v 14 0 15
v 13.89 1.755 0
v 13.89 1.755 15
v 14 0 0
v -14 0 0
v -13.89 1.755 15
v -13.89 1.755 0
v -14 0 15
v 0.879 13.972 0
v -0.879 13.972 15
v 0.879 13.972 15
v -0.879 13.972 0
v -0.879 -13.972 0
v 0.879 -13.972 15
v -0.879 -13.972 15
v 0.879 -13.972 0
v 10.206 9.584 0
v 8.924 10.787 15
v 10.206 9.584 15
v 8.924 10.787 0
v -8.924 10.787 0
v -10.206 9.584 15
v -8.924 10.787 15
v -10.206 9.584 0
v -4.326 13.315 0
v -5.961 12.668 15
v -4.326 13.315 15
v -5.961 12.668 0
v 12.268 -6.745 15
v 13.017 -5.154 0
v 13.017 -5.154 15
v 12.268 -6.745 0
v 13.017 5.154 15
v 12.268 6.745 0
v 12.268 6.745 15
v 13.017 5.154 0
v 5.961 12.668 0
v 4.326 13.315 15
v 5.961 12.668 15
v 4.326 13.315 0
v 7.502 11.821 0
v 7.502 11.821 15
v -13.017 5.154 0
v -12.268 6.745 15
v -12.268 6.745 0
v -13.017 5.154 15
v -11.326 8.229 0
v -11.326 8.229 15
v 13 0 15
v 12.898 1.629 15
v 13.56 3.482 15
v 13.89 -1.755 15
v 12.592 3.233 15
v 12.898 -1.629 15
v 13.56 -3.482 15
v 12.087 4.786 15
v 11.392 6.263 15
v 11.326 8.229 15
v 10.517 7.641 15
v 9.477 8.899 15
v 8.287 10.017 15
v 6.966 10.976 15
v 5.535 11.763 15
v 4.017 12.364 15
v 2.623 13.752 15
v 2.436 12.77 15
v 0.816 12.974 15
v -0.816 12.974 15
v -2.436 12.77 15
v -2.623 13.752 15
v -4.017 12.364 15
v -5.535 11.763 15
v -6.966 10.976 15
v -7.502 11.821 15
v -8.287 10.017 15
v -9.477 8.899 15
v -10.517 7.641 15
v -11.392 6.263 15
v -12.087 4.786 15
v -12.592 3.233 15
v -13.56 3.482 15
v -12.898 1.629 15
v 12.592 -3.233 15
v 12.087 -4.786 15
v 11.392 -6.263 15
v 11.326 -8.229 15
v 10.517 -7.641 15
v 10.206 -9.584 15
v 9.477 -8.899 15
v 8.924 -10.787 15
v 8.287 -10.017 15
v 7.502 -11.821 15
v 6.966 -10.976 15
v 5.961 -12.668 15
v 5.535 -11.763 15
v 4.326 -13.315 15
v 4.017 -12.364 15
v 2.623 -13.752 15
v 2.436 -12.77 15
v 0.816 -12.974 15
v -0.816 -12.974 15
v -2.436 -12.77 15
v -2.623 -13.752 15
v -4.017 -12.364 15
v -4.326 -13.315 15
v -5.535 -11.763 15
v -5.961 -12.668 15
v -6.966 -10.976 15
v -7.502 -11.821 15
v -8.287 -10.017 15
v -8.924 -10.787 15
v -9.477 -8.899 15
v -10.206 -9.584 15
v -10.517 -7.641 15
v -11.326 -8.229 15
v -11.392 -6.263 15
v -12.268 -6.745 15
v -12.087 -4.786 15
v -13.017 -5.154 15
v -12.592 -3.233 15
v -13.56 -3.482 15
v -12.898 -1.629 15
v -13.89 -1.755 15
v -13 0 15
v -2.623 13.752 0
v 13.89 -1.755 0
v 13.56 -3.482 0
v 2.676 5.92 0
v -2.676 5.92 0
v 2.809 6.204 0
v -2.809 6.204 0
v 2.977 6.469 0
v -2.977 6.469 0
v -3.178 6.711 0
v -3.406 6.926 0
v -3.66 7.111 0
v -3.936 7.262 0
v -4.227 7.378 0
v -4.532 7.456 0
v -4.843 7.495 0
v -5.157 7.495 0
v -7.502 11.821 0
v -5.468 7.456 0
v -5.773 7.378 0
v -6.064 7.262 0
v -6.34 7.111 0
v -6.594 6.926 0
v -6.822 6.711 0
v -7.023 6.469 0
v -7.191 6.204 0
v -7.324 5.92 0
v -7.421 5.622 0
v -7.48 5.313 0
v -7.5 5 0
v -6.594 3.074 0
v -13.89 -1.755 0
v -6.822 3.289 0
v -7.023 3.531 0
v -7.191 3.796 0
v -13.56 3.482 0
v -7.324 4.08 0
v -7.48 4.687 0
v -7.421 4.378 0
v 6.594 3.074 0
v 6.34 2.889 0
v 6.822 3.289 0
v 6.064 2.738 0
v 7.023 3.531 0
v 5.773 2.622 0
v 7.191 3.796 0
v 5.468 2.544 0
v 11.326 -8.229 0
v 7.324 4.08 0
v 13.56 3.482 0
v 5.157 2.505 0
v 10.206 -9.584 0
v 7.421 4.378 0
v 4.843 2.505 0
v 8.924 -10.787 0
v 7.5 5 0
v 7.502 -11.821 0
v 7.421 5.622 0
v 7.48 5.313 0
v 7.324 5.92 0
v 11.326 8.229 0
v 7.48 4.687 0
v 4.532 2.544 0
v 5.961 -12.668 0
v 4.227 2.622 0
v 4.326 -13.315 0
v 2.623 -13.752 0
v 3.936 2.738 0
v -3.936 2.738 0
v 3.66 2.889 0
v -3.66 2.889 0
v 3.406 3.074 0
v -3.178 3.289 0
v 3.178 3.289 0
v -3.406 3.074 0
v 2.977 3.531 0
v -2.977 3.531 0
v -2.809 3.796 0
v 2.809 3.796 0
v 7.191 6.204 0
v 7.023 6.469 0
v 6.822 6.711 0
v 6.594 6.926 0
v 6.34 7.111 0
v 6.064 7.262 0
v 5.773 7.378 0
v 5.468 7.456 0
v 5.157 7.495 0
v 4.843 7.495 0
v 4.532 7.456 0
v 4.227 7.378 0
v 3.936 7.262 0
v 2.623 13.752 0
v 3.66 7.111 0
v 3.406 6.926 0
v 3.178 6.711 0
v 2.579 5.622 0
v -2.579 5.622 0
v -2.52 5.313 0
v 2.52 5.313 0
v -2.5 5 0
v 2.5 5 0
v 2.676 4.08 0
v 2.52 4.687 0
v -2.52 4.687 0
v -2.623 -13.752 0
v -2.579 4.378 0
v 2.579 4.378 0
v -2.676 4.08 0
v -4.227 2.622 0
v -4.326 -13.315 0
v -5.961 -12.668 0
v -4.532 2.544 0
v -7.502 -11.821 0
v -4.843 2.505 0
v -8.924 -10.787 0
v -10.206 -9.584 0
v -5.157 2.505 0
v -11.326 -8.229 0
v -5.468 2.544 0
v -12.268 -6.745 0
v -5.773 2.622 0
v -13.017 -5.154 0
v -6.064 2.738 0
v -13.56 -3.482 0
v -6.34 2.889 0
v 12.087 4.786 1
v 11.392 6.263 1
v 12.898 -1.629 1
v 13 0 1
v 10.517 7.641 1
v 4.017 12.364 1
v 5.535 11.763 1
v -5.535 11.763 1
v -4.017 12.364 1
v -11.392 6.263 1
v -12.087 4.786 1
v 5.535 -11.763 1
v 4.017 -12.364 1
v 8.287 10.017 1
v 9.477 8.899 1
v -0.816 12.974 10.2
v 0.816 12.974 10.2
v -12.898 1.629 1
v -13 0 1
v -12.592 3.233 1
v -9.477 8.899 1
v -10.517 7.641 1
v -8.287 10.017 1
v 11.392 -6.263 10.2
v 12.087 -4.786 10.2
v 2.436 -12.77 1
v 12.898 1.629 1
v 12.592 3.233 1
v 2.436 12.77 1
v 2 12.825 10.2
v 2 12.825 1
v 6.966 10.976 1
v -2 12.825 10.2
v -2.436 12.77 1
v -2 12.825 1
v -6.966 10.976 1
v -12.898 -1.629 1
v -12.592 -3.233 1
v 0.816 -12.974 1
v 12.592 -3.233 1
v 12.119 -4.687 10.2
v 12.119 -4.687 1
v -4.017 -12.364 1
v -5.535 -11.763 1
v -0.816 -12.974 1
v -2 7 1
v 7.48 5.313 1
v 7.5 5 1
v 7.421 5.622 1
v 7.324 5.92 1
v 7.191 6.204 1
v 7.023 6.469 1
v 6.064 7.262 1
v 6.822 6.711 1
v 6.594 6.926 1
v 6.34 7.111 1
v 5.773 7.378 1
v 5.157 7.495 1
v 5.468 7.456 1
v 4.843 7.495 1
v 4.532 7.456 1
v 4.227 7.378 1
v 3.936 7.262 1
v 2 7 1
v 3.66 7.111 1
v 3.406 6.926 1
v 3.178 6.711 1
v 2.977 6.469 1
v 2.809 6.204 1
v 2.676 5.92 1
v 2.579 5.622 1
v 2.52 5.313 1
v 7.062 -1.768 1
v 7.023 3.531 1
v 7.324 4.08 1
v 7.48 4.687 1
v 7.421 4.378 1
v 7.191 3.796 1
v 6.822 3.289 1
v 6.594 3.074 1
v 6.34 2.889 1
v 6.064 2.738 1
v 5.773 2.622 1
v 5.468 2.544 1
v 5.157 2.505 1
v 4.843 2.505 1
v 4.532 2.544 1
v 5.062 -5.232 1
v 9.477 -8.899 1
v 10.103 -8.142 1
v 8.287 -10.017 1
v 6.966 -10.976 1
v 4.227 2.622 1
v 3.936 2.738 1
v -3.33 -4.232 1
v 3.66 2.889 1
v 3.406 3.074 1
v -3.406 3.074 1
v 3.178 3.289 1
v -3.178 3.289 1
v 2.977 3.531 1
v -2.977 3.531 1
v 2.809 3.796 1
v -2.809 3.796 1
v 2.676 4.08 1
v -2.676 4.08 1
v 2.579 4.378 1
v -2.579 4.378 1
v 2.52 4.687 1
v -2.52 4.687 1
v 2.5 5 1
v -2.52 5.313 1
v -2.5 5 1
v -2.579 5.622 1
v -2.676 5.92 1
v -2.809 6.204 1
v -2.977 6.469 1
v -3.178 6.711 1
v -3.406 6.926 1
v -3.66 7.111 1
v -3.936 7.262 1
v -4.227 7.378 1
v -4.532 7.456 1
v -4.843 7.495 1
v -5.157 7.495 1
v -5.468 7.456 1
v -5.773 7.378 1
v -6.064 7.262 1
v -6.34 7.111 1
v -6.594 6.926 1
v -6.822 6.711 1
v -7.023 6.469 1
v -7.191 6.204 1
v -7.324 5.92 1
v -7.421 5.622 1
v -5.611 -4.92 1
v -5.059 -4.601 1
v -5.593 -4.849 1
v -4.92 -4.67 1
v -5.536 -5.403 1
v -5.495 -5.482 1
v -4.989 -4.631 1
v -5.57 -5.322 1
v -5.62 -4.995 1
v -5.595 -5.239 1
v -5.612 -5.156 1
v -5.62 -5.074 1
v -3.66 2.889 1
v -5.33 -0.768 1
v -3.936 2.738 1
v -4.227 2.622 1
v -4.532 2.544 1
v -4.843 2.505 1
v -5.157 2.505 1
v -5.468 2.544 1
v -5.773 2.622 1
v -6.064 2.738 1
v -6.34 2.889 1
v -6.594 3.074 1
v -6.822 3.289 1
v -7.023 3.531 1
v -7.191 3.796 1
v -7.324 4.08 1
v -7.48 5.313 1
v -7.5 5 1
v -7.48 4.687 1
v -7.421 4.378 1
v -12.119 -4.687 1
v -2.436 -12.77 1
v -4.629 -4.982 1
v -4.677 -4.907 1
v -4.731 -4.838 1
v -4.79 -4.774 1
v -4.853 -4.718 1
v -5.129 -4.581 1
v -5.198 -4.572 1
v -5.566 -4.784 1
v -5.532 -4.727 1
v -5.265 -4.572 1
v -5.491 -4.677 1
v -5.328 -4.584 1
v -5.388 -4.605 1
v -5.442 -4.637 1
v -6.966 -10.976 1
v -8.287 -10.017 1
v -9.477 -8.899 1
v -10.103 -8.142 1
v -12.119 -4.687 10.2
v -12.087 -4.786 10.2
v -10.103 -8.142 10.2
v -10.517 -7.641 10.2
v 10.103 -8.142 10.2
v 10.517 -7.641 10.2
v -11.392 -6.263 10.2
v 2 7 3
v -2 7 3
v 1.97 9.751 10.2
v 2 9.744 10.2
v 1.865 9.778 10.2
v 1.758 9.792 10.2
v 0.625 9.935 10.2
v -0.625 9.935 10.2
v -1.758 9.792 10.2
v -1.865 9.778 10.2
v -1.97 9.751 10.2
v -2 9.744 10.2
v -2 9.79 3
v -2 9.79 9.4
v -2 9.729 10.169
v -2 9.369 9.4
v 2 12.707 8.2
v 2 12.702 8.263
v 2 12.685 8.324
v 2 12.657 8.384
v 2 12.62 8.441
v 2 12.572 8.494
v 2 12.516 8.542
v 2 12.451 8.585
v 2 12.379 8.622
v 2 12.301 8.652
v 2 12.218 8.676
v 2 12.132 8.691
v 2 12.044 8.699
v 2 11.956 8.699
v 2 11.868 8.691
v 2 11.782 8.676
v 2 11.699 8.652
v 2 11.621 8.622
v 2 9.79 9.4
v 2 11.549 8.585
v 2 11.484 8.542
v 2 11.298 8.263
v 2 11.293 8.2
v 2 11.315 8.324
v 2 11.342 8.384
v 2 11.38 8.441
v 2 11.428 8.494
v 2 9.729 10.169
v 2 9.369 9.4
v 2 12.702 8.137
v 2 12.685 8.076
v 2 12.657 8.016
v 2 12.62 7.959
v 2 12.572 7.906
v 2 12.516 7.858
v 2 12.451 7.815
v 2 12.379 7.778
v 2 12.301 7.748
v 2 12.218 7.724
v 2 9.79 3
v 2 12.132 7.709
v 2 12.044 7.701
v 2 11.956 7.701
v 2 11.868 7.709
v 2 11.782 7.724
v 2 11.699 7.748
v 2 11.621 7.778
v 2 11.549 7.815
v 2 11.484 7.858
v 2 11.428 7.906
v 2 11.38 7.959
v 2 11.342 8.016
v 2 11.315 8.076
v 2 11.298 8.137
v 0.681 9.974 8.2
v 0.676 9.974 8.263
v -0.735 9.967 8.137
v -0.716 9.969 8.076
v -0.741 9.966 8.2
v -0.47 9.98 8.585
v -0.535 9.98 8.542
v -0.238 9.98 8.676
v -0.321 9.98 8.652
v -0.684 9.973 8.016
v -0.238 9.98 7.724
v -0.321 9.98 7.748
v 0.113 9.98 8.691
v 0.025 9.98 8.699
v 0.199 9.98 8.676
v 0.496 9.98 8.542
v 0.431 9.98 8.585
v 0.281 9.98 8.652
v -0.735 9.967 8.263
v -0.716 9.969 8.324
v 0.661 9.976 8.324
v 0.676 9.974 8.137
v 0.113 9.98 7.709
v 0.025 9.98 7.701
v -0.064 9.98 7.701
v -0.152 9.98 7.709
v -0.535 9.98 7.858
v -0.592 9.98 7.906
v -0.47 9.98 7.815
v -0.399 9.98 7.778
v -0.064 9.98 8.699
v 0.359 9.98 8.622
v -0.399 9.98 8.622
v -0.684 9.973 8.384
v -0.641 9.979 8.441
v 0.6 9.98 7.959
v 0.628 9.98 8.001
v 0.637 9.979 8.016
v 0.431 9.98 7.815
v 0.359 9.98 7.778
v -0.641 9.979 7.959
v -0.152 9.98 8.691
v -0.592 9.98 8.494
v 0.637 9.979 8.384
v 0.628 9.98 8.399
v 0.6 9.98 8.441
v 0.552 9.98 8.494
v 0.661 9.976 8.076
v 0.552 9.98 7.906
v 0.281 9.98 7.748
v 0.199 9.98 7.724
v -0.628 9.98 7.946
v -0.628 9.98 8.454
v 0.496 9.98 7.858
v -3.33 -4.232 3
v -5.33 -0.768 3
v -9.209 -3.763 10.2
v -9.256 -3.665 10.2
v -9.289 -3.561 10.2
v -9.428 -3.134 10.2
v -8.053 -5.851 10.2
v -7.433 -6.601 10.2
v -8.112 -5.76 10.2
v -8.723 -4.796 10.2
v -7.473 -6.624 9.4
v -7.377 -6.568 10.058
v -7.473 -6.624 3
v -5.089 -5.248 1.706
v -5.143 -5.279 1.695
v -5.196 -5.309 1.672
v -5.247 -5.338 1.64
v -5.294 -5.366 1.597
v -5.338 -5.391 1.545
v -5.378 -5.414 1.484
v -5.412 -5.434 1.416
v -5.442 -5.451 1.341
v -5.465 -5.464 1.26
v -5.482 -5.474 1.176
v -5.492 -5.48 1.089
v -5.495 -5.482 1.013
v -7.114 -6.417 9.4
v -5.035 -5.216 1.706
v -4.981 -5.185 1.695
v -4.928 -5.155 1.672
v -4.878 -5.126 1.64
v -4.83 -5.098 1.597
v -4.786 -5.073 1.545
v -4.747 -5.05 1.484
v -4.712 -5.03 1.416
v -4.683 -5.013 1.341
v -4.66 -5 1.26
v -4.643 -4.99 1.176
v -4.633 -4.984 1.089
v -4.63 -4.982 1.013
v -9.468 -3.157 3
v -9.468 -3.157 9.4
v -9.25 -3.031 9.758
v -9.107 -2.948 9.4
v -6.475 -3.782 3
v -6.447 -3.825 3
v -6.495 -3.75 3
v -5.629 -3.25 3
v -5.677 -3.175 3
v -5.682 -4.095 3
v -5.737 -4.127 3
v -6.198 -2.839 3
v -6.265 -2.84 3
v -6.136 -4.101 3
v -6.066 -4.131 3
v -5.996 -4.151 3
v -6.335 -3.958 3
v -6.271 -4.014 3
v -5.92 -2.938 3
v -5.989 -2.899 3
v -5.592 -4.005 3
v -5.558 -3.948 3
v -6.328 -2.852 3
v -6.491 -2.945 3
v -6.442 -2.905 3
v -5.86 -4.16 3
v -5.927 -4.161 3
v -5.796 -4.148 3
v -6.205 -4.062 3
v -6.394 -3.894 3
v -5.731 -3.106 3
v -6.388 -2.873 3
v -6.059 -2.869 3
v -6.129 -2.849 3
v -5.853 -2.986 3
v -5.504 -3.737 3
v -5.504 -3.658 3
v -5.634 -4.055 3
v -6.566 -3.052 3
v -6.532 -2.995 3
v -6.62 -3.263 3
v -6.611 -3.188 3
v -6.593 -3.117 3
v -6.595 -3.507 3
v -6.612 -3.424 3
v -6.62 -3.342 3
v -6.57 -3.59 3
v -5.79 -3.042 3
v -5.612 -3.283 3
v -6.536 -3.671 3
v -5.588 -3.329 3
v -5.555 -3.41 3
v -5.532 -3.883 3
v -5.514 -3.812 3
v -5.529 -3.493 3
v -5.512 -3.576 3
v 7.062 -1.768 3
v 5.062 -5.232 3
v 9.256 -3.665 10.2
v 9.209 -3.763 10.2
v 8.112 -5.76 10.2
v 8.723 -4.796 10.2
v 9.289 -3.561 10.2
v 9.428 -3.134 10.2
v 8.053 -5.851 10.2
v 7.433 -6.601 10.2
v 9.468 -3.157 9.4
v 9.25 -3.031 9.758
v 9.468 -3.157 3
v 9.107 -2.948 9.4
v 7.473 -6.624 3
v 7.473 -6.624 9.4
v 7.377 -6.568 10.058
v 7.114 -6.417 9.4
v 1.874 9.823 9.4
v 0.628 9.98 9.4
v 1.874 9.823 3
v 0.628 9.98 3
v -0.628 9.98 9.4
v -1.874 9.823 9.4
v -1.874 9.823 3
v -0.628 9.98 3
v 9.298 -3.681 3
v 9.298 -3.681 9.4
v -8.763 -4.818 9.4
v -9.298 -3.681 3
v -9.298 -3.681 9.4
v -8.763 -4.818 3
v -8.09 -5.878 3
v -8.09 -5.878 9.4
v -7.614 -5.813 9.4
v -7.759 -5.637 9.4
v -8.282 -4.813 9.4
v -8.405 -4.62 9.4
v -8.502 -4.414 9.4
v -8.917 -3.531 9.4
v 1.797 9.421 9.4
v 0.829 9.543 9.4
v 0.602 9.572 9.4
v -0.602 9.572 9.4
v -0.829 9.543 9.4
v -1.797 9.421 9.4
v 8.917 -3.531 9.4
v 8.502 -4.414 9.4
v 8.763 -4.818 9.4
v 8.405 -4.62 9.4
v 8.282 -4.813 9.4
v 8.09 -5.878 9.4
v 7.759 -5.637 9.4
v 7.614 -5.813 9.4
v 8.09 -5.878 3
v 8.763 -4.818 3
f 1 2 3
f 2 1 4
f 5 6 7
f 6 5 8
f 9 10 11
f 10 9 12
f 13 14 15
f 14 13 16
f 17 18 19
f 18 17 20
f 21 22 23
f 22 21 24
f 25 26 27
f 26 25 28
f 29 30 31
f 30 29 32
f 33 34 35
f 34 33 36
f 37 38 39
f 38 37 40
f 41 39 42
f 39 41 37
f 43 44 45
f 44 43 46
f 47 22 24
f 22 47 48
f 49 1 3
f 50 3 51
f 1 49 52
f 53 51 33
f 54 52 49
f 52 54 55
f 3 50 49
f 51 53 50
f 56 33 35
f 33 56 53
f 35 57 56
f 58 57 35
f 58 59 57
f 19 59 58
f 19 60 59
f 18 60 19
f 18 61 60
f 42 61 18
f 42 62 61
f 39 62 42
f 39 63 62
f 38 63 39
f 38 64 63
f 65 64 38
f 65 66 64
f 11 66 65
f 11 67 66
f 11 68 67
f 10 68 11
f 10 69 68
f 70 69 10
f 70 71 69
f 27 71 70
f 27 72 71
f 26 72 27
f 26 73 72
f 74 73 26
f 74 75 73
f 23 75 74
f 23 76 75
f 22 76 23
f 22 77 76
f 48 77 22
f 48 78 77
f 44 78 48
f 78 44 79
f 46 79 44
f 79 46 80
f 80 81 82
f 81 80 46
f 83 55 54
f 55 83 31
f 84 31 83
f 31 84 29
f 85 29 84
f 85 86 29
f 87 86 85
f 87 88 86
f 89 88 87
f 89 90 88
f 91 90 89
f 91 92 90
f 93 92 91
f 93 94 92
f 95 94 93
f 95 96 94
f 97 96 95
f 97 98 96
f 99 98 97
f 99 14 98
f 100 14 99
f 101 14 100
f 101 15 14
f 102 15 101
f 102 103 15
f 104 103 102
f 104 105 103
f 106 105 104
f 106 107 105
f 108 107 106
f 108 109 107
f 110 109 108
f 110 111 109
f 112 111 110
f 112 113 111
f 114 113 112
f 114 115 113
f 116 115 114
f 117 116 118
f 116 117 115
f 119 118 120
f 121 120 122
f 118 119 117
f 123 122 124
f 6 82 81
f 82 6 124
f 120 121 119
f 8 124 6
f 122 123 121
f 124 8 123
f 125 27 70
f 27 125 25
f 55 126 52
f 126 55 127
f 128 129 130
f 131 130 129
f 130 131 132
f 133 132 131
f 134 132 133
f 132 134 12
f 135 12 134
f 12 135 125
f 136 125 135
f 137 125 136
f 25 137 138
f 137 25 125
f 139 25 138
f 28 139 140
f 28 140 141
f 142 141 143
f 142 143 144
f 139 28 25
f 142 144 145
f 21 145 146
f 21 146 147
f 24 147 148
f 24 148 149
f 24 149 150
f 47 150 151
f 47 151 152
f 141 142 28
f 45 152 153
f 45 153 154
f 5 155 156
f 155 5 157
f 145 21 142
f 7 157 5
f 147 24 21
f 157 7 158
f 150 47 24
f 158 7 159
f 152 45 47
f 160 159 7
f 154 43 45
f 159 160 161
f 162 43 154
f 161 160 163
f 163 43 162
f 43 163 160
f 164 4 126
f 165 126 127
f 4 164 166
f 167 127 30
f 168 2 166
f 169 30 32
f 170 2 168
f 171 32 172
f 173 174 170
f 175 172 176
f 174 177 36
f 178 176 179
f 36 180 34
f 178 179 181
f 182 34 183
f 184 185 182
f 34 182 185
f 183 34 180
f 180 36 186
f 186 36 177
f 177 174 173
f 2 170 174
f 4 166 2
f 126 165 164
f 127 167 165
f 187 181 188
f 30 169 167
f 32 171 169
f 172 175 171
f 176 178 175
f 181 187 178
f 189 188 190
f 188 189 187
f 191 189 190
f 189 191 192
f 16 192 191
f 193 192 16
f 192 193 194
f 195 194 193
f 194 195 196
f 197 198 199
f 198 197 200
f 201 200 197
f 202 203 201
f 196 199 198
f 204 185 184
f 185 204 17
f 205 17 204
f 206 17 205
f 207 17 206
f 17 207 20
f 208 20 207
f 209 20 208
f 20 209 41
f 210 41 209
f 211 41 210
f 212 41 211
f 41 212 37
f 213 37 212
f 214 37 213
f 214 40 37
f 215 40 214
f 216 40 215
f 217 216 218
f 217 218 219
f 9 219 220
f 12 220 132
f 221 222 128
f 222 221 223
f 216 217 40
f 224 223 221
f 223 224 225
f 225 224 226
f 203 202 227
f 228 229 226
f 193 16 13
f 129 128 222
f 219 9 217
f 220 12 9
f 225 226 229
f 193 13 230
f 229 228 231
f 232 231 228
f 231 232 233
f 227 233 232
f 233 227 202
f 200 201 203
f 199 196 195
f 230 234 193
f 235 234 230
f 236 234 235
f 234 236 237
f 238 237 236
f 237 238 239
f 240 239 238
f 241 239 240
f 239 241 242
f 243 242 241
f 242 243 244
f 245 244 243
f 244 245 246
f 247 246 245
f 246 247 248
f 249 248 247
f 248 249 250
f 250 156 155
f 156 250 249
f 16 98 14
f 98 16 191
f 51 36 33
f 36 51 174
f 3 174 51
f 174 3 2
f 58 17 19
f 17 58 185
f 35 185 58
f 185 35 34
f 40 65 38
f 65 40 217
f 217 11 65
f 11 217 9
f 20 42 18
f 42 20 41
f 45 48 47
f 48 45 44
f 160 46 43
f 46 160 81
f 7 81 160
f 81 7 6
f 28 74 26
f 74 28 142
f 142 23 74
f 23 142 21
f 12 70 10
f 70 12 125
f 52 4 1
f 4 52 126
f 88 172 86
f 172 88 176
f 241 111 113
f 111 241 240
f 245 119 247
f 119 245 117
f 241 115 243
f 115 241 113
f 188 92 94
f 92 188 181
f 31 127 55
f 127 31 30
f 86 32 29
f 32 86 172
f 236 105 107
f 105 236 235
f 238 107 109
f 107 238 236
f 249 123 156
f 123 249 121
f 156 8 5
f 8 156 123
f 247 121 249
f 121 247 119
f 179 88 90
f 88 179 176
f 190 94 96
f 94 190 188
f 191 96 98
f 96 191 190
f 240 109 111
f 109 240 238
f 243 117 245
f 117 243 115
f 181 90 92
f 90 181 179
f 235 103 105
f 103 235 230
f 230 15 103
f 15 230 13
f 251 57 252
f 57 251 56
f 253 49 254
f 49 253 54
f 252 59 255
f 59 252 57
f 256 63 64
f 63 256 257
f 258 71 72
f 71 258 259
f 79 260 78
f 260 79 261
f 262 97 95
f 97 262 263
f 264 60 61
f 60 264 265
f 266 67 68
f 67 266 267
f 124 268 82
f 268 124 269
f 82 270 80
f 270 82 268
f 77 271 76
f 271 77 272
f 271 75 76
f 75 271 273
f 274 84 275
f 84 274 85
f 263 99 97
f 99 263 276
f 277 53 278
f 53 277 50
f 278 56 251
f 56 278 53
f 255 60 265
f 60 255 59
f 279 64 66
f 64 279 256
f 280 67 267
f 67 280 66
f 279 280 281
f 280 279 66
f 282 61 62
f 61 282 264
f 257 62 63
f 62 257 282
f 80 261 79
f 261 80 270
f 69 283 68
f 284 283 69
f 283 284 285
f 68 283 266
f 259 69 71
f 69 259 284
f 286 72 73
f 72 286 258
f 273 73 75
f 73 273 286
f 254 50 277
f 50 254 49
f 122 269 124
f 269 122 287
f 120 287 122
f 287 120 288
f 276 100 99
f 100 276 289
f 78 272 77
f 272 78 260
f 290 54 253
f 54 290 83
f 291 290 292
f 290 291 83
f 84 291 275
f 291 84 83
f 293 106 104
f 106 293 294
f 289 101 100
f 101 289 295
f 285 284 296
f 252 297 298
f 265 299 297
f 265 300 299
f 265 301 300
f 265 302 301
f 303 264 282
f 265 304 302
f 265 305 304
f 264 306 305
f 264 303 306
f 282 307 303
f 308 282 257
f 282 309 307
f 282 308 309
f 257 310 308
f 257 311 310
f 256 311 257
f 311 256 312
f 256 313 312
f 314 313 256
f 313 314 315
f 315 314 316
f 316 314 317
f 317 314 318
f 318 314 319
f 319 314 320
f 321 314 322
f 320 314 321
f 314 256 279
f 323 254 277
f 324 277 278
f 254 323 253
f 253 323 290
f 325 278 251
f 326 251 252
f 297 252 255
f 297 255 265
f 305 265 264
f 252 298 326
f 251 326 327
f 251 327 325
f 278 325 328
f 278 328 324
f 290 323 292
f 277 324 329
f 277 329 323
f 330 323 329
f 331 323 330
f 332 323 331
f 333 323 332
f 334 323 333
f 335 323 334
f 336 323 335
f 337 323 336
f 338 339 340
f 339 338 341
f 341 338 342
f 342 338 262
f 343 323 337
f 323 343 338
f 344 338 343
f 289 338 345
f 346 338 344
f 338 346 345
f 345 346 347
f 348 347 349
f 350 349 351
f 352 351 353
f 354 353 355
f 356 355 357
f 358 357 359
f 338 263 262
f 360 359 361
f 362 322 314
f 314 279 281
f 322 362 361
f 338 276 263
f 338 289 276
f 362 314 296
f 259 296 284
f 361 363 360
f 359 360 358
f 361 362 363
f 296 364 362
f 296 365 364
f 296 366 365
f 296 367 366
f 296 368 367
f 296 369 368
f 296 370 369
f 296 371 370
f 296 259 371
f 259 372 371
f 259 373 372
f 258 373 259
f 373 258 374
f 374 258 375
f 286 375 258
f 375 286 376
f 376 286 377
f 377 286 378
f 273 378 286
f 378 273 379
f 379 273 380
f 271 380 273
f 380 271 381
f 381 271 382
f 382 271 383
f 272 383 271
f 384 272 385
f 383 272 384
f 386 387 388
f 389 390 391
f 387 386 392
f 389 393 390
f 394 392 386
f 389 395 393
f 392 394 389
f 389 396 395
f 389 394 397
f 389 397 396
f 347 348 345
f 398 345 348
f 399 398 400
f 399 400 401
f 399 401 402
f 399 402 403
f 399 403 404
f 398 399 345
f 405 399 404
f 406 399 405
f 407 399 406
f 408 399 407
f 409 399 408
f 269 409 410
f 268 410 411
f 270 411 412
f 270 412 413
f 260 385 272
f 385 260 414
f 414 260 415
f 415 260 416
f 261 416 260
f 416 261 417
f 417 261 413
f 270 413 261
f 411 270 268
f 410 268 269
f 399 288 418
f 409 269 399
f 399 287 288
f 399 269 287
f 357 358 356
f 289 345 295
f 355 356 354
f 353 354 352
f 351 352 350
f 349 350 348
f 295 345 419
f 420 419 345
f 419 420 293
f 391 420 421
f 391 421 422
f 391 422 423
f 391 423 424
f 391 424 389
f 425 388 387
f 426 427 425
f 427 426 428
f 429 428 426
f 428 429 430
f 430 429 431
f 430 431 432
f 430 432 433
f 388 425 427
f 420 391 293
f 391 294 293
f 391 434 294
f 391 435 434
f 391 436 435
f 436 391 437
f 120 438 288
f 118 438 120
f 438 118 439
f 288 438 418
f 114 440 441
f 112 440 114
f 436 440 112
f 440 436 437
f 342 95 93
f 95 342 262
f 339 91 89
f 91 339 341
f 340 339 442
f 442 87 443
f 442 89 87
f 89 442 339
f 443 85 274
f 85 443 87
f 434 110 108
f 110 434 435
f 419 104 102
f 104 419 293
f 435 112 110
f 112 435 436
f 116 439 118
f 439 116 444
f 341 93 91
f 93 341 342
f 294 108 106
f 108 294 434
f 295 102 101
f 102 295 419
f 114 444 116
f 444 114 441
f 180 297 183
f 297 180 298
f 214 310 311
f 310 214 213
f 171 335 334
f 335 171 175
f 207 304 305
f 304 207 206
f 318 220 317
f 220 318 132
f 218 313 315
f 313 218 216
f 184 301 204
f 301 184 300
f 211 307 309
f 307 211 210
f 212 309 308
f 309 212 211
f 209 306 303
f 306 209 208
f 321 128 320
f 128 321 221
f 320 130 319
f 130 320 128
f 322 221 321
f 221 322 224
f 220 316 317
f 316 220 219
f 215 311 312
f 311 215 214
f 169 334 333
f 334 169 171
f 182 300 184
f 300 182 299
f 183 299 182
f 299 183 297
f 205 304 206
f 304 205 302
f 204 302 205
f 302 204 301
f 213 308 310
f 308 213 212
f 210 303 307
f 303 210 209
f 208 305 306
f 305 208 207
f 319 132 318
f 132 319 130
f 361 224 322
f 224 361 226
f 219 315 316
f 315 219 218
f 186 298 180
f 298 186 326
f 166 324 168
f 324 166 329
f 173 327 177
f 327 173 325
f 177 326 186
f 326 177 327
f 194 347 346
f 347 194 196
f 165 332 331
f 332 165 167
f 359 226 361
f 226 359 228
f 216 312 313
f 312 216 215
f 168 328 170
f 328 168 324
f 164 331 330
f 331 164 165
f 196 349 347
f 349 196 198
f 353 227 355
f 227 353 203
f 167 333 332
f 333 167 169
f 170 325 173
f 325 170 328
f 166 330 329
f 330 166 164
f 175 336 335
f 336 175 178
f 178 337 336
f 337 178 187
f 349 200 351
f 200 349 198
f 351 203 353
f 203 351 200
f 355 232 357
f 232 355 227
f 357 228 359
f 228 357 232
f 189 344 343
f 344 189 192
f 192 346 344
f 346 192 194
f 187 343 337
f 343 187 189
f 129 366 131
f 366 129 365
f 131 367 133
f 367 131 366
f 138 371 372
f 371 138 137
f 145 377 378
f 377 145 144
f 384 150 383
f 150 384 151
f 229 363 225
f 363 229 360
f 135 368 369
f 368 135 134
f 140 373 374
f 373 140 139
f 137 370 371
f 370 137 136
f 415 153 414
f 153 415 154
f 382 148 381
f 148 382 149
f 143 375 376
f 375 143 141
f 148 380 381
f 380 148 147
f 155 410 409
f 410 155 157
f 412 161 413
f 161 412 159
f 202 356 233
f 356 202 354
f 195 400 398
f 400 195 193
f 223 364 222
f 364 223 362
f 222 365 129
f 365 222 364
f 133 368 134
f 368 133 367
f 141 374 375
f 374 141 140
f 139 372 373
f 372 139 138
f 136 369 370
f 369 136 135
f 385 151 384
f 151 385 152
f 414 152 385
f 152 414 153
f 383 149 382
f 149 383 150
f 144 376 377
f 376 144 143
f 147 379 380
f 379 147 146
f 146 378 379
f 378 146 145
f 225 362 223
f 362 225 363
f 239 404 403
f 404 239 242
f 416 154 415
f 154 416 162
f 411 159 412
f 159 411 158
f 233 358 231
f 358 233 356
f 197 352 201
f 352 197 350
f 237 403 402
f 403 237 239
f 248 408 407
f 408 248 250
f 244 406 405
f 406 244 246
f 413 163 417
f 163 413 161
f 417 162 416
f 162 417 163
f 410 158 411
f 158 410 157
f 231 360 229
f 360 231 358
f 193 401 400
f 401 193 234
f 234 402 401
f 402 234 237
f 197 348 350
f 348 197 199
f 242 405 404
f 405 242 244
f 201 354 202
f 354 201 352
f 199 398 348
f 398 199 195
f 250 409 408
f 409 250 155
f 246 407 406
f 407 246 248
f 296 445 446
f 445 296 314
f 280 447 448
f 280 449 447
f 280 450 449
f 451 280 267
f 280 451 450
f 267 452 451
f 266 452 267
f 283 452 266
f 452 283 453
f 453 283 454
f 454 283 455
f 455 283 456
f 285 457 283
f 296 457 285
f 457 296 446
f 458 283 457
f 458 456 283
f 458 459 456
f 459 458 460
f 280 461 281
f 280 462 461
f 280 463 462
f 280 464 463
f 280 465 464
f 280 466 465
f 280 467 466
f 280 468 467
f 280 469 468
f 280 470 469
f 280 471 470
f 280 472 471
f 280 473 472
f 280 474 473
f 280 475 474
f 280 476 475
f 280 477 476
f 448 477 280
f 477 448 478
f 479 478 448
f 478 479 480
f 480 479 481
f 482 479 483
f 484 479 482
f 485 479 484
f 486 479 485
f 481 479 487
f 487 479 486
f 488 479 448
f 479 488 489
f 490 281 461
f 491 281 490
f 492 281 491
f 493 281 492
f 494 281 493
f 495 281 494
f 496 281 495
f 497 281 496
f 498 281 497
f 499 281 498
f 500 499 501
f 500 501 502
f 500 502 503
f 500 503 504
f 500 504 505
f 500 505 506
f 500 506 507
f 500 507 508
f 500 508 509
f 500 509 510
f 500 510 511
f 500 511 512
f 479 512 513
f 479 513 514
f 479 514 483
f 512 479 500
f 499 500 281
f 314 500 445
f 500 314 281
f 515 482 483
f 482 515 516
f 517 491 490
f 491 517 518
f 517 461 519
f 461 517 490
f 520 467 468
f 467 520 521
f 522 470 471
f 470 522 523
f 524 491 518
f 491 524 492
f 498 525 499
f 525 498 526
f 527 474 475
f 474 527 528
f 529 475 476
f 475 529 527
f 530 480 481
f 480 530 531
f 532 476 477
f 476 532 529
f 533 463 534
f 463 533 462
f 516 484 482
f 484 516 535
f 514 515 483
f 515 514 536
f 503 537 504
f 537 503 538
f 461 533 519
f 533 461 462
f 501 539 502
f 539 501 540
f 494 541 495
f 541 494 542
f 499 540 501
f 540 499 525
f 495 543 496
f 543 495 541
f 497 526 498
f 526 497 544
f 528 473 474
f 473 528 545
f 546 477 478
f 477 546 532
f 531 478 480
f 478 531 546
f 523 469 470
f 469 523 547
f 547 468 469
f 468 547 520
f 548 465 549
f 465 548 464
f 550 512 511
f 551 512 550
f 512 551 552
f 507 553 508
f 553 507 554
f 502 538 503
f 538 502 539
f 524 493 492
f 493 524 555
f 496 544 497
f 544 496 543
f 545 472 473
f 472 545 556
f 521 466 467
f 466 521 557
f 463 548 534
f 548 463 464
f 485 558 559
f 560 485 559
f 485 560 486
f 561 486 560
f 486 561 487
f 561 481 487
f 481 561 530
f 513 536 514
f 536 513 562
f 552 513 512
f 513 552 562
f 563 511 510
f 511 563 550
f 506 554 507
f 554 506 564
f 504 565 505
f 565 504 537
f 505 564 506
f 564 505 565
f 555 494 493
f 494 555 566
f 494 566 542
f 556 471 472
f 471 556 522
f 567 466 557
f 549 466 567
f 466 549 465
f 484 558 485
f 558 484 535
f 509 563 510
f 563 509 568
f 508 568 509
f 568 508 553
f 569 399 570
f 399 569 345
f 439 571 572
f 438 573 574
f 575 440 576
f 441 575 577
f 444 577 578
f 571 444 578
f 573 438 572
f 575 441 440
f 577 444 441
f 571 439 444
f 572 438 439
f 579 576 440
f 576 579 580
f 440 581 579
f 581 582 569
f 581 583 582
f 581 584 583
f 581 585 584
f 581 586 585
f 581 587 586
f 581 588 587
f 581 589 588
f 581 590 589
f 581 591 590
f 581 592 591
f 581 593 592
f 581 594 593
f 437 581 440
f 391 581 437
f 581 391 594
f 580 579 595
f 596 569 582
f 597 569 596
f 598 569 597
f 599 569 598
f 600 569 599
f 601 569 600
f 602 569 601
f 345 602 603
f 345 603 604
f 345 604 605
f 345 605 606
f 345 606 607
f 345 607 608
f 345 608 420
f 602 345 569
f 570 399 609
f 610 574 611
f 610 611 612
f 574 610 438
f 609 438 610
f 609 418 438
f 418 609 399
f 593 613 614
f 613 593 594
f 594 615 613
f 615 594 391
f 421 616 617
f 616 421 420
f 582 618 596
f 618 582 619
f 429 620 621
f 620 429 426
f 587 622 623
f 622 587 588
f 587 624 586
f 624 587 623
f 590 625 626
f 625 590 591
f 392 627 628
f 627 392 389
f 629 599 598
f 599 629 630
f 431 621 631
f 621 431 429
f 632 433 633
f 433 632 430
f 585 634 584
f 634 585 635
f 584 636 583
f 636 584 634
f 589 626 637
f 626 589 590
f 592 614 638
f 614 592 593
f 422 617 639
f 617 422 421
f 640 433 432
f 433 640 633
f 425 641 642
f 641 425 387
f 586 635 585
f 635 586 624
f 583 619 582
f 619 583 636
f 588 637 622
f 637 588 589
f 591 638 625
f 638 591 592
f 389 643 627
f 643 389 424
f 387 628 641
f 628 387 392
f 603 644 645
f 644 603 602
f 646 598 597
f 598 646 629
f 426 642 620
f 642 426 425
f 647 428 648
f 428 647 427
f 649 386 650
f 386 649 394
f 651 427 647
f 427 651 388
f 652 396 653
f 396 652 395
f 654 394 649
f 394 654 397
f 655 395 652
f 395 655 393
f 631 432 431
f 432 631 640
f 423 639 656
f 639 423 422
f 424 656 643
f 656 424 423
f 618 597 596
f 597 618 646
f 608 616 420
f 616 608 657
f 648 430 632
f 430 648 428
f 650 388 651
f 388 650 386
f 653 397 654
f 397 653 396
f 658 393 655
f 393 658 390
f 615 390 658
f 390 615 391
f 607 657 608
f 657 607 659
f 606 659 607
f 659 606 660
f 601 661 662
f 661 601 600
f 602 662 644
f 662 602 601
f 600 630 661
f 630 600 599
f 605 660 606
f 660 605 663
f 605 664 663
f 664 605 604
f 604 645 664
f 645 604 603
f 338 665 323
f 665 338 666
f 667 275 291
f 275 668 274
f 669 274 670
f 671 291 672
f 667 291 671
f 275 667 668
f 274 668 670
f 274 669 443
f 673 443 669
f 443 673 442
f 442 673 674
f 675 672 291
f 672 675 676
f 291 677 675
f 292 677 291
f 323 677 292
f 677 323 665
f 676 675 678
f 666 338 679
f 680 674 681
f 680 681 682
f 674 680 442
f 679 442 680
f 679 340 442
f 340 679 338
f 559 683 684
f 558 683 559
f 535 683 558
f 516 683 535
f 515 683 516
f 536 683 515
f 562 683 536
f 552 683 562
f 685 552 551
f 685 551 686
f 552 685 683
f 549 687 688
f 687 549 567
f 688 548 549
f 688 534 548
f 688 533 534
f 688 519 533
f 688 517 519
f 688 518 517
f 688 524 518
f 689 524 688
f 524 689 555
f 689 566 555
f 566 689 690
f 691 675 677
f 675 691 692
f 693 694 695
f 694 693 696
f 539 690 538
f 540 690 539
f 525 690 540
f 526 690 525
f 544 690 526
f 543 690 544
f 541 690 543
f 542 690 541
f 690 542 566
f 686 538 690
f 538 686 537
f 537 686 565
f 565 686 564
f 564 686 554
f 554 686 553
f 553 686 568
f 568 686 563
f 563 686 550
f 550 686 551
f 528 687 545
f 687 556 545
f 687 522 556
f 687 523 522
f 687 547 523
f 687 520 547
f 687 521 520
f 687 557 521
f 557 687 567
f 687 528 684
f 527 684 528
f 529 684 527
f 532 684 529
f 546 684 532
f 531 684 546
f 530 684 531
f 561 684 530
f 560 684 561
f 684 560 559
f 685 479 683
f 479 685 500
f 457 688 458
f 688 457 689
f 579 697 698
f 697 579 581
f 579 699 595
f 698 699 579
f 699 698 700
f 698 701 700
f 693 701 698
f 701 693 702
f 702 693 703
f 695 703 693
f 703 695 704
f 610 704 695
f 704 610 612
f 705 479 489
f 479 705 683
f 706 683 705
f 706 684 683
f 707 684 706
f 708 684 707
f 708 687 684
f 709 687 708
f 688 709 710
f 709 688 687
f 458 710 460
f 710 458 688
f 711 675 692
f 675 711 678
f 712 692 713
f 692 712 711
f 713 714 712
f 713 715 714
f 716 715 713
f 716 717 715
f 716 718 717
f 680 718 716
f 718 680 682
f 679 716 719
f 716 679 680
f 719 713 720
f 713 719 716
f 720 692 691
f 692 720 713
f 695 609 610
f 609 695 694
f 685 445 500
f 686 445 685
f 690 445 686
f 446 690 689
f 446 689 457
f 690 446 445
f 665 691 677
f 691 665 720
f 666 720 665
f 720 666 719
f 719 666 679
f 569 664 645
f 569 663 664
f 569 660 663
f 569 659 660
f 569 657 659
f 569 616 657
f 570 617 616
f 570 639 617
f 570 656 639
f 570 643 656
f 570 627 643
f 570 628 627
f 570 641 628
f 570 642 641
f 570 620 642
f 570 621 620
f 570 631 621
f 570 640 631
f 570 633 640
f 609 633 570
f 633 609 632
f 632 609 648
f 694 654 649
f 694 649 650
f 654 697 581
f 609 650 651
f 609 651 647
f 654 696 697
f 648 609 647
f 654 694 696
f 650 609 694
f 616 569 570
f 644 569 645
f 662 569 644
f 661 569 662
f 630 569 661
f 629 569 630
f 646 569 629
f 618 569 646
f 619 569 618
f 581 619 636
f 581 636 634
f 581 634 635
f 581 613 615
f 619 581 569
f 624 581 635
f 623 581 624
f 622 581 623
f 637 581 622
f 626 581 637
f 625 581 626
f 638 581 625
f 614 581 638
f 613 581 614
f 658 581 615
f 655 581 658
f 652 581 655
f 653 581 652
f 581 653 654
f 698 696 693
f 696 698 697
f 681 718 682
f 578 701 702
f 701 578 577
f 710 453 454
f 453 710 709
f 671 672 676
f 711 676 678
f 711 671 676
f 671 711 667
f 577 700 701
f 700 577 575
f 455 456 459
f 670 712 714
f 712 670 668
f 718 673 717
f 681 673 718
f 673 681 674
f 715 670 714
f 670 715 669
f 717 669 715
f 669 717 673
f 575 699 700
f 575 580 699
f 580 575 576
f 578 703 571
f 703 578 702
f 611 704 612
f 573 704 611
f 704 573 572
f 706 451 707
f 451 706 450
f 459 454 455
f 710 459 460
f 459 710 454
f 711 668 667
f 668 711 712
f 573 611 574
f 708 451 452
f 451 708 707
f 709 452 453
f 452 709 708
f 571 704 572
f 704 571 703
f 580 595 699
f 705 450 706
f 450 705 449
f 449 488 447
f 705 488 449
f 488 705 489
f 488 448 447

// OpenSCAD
/* raketa pro Adamka */
$fn=50;
nose_d = 30;
nose_l = 100;
step = 2;
thickness=1;
rantl_l=15;
diry_soupnout=5;
diry_d=5;

module cr2032_holder(){
  difference(){
    union(){
     rotate([0,0,90])translate([7,-2,0])difference(){
        cube([6,4,10.2]);  
         translate([0,5,8.2])rotate([90,0,45])cylinder(d=1, h=70);
     }
     rotate([0,0,-150])translate([5,-2,0]){
         difference(){
         cube([8,4,10.2]);
         translate([2,5,0])rotate([45,0,0])cylinder(d=1, h=10);
         }  
     }
     rotate([0,0,-30])translate([7,-2,0])cube([6,4,10.2]);  
    }    
  union(){
    translate([0,0,3])cylinder(d=20,h=6.4);
    translate([0,0,9.2])cylinder(r1=19/2, r2=20/2,h=1.1);
  }
  }    
}

difference(){
union(){
    cylinder(d=nose_d-(2*thickness), h=rantl_l);
}
  translate([0,0,1])cylinder(d=(nose_d-4*thickness), h=rantl_l);
  translate([5,diry_soupnout,0])cylinder(d=diry_d,h=rantl_l);
  translate([-5,diry_soupnout,0])cylinder(d=diry_d,h=rantl_l);
}
cr2032_holder();
